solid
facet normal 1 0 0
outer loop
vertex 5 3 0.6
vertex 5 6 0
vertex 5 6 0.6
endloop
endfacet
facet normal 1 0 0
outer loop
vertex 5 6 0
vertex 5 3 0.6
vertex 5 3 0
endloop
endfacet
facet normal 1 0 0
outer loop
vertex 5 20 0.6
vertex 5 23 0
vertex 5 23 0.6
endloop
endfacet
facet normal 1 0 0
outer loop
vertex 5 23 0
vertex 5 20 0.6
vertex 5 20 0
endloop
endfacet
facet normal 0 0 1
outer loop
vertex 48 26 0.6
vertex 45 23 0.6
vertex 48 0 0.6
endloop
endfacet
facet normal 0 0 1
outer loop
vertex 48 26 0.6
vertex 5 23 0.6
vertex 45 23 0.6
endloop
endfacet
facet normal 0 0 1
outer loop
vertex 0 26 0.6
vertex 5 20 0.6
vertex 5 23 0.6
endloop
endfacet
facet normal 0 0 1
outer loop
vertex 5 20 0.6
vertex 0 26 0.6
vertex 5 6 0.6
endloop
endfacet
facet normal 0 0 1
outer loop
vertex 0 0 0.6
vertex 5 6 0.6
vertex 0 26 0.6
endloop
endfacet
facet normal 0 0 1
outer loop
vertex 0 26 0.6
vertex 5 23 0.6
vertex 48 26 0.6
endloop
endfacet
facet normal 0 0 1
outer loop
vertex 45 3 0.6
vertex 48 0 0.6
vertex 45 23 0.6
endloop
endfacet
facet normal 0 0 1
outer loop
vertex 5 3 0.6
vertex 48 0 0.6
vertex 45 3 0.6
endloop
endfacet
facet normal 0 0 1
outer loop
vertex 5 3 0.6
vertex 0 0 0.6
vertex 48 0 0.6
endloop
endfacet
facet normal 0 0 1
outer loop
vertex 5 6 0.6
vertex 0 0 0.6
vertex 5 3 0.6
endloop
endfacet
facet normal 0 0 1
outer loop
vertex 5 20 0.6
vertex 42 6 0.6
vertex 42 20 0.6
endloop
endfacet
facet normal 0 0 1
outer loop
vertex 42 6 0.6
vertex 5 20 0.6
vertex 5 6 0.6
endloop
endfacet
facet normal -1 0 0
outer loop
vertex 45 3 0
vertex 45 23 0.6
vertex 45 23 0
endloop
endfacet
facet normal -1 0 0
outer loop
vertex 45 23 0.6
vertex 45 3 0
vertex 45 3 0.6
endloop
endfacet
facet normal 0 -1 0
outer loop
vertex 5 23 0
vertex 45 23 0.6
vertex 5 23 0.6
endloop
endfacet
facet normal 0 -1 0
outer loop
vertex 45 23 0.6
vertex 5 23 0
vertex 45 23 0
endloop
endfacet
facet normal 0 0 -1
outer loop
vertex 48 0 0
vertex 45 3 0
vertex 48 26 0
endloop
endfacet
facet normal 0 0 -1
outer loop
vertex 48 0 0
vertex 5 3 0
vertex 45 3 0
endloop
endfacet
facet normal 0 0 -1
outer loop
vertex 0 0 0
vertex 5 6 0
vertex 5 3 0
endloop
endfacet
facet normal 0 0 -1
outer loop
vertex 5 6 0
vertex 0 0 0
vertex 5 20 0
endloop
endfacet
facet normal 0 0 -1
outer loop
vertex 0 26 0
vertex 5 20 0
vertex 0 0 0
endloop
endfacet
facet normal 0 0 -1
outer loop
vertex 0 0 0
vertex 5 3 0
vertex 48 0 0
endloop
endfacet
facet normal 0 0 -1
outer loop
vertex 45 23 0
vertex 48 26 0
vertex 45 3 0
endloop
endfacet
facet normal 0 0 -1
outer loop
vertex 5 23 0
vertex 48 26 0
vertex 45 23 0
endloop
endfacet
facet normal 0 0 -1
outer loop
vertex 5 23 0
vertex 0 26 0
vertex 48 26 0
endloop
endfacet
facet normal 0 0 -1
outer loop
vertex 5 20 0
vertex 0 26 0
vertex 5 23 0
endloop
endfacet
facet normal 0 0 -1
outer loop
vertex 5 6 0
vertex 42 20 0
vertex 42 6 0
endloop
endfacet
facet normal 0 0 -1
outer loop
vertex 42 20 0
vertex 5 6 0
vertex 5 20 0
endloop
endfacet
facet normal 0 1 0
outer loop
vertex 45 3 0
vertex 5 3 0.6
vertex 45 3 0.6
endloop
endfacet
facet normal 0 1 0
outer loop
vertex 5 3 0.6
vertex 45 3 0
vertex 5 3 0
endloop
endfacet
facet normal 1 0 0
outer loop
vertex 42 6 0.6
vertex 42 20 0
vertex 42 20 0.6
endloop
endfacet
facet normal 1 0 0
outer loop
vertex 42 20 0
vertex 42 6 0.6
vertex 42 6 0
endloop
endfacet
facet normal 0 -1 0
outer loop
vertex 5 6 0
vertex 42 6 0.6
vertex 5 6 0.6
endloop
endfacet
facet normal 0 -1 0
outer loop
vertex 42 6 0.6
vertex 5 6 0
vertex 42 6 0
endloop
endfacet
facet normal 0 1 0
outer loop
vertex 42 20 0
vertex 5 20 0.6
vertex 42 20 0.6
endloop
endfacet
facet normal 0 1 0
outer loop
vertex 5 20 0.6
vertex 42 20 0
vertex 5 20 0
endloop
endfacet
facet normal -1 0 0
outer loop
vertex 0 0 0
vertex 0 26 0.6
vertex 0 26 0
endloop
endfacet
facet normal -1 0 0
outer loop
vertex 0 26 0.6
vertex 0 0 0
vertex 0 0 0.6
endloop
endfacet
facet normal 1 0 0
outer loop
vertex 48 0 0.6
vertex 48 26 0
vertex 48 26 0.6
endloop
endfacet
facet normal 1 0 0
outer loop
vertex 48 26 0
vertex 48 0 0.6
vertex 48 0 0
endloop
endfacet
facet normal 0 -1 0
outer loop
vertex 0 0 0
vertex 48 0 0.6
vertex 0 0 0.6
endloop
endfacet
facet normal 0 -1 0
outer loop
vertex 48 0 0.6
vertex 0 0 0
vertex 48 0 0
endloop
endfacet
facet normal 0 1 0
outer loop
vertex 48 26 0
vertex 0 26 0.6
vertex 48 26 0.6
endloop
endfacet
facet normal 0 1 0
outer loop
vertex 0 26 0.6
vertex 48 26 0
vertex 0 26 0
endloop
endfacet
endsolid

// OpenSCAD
w=20.0;
l=40.0;
h=0.6;
border=3;
top_additional = 2;

module u_figure(l, w, h, border) {
    w2 = w - border*2;
    difference() {
        cube([l, w, h]);
        translate([-border, border, 0])
            cube([l, w2, h]);
    }
}

module bookmark(l, w, h, border) {
    difference() {
        cube([l+border*2+top_additional, w+border*2, h]);
        translate([border + top_additional, border, 0])
            u_figure(l, w, h, border);
    }
}

bookmark(l, w, h, 3);
